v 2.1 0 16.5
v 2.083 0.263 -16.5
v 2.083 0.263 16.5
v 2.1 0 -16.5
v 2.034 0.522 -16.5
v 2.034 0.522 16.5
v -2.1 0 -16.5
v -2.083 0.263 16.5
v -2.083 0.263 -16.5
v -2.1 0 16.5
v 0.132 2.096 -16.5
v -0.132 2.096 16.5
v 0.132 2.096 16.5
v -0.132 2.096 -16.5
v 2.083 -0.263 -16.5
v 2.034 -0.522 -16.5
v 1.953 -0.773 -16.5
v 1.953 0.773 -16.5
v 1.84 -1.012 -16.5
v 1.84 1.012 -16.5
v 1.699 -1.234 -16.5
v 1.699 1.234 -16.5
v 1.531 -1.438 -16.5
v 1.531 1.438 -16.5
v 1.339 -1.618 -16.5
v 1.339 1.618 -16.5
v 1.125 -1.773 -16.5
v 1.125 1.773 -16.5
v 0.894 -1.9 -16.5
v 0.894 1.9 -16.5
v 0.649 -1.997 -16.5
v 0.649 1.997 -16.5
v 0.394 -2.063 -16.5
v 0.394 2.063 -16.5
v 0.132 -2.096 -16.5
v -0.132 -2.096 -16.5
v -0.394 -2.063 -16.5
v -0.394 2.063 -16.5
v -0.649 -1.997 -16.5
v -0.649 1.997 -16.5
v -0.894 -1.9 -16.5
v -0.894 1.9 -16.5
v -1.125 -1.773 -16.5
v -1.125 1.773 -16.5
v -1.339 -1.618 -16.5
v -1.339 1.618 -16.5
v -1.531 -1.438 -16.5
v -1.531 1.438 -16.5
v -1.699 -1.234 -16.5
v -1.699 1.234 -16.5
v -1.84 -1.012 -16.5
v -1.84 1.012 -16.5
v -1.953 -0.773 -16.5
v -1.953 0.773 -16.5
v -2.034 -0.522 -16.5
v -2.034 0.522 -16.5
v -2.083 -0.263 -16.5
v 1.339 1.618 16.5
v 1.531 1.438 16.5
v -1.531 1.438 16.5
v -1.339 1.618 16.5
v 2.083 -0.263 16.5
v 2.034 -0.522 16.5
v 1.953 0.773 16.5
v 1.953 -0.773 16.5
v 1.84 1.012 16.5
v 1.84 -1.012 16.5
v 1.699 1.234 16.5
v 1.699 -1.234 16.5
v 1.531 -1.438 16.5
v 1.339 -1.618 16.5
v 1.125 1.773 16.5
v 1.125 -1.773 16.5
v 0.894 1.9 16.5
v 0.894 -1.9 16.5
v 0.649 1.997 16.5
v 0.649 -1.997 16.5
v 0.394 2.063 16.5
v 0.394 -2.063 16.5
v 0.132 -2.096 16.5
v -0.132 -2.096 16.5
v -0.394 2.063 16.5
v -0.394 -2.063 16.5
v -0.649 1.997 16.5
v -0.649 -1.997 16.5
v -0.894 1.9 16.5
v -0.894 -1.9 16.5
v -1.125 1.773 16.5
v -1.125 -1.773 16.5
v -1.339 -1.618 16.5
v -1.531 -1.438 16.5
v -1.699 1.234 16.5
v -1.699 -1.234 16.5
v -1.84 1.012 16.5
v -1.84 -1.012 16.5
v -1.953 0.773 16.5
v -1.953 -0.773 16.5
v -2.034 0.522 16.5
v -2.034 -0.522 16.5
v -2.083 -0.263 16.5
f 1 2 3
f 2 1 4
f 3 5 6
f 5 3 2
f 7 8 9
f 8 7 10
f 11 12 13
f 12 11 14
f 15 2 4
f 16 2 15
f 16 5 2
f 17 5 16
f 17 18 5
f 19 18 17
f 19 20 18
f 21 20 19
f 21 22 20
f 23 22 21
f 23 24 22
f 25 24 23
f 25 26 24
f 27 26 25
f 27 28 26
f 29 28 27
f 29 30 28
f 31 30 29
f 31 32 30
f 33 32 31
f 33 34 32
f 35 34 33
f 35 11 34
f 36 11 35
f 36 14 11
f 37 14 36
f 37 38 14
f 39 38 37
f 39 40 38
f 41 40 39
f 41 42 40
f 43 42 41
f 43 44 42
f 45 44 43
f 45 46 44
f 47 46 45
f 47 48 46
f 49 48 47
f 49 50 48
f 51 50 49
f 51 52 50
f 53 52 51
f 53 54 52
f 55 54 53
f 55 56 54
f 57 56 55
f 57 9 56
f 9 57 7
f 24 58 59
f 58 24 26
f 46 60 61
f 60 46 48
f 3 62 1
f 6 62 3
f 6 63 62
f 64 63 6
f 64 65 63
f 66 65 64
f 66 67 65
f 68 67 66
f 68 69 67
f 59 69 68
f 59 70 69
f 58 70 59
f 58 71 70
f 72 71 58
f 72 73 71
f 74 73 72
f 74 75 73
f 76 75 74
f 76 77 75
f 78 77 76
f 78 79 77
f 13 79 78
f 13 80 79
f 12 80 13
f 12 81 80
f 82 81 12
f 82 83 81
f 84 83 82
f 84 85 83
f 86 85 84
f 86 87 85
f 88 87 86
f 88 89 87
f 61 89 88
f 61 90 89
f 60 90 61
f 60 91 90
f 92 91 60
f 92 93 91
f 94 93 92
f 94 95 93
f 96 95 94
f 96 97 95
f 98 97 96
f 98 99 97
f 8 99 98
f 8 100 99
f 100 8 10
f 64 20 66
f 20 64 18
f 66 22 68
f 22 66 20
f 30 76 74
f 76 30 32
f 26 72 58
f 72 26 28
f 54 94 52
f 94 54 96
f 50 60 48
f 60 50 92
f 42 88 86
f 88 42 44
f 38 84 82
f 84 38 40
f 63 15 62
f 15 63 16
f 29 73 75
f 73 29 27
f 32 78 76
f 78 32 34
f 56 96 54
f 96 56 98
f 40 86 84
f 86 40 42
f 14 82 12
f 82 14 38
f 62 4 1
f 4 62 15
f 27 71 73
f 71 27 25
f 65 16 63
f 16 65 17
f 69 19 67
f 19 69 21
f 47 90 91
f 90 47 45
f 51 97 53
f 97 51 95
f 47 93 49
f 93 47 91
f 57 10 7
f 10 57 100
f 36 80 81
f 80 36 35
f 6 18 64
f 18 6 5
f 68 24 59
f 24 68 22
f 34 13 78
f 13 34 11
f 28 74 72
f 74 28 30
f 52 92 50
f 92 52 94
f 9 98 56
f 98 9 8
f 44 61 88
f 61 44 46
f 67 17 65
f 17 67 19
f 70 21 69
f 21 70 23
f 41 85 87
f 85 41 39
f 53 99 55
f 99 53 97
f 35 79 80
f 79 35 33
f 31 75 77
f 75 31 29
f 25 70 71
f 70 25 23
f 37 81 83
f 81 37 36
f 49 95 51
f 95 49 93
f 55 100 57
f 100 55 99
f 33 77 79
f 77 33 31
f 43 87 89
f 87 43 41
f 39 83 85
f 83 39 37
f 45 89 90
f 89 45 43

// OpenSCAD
$fn = 50;


difference() {
	union() {
		translate(v = [0, 0, -16.5000000000]) {
			cylinder(h = 33, r = 2.1000000000);
		}
	}
	union() {
		translate(v = [0, 0, -100.0000000000]) {
			cylinder(h = 200, r = 0);
		}
	}
}
